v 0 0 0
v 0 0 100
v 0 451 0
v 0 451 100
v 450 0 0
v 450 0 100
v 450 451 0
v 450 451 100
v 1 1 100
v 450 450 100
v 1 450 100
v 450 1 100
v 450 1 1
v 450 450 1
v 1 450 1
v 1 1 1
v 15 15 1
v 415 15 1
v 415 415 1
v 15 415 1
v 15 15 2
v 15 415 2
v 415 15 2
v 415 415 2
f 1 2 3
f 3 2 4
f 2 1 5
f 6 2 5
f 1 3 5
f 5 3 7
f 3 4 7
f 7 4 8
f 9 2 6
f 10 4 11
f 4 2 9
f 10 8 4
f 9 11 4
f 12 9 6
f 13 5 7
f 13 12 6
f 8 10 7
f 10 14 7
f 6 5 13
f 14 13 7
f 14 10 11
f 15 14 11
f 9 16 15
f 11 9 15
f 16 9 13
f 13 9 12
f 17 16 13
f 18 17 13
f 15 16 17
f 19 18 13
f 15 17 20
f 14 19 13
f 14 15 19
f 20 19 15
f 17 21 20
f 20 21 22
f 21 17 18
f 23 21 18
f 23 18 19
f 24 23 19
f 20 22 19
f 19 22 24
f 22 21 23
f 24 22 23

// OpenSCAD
// Box
color ("gray", 0.618) {
	cube([450,450,1]);
	cube([450,1,100]);
	cube([1,450,100]);
	translate(v = [0, 450, 0]) { 
 		cube([450,1,100]);
		}
	}

// Scintillator
translate(v = [15, 15, 1]) { 
	color ("green", 0.25) {
		cube([400,400,1]);
		}
	}

// Optical modules
//color ("brown", 0.618) {
//	cube([12.8,9.6,1]);
//	}
//sphere(d=15);

//cylinder(h = 65, r1 = 430/4, r2 = 430/3, center = false);
